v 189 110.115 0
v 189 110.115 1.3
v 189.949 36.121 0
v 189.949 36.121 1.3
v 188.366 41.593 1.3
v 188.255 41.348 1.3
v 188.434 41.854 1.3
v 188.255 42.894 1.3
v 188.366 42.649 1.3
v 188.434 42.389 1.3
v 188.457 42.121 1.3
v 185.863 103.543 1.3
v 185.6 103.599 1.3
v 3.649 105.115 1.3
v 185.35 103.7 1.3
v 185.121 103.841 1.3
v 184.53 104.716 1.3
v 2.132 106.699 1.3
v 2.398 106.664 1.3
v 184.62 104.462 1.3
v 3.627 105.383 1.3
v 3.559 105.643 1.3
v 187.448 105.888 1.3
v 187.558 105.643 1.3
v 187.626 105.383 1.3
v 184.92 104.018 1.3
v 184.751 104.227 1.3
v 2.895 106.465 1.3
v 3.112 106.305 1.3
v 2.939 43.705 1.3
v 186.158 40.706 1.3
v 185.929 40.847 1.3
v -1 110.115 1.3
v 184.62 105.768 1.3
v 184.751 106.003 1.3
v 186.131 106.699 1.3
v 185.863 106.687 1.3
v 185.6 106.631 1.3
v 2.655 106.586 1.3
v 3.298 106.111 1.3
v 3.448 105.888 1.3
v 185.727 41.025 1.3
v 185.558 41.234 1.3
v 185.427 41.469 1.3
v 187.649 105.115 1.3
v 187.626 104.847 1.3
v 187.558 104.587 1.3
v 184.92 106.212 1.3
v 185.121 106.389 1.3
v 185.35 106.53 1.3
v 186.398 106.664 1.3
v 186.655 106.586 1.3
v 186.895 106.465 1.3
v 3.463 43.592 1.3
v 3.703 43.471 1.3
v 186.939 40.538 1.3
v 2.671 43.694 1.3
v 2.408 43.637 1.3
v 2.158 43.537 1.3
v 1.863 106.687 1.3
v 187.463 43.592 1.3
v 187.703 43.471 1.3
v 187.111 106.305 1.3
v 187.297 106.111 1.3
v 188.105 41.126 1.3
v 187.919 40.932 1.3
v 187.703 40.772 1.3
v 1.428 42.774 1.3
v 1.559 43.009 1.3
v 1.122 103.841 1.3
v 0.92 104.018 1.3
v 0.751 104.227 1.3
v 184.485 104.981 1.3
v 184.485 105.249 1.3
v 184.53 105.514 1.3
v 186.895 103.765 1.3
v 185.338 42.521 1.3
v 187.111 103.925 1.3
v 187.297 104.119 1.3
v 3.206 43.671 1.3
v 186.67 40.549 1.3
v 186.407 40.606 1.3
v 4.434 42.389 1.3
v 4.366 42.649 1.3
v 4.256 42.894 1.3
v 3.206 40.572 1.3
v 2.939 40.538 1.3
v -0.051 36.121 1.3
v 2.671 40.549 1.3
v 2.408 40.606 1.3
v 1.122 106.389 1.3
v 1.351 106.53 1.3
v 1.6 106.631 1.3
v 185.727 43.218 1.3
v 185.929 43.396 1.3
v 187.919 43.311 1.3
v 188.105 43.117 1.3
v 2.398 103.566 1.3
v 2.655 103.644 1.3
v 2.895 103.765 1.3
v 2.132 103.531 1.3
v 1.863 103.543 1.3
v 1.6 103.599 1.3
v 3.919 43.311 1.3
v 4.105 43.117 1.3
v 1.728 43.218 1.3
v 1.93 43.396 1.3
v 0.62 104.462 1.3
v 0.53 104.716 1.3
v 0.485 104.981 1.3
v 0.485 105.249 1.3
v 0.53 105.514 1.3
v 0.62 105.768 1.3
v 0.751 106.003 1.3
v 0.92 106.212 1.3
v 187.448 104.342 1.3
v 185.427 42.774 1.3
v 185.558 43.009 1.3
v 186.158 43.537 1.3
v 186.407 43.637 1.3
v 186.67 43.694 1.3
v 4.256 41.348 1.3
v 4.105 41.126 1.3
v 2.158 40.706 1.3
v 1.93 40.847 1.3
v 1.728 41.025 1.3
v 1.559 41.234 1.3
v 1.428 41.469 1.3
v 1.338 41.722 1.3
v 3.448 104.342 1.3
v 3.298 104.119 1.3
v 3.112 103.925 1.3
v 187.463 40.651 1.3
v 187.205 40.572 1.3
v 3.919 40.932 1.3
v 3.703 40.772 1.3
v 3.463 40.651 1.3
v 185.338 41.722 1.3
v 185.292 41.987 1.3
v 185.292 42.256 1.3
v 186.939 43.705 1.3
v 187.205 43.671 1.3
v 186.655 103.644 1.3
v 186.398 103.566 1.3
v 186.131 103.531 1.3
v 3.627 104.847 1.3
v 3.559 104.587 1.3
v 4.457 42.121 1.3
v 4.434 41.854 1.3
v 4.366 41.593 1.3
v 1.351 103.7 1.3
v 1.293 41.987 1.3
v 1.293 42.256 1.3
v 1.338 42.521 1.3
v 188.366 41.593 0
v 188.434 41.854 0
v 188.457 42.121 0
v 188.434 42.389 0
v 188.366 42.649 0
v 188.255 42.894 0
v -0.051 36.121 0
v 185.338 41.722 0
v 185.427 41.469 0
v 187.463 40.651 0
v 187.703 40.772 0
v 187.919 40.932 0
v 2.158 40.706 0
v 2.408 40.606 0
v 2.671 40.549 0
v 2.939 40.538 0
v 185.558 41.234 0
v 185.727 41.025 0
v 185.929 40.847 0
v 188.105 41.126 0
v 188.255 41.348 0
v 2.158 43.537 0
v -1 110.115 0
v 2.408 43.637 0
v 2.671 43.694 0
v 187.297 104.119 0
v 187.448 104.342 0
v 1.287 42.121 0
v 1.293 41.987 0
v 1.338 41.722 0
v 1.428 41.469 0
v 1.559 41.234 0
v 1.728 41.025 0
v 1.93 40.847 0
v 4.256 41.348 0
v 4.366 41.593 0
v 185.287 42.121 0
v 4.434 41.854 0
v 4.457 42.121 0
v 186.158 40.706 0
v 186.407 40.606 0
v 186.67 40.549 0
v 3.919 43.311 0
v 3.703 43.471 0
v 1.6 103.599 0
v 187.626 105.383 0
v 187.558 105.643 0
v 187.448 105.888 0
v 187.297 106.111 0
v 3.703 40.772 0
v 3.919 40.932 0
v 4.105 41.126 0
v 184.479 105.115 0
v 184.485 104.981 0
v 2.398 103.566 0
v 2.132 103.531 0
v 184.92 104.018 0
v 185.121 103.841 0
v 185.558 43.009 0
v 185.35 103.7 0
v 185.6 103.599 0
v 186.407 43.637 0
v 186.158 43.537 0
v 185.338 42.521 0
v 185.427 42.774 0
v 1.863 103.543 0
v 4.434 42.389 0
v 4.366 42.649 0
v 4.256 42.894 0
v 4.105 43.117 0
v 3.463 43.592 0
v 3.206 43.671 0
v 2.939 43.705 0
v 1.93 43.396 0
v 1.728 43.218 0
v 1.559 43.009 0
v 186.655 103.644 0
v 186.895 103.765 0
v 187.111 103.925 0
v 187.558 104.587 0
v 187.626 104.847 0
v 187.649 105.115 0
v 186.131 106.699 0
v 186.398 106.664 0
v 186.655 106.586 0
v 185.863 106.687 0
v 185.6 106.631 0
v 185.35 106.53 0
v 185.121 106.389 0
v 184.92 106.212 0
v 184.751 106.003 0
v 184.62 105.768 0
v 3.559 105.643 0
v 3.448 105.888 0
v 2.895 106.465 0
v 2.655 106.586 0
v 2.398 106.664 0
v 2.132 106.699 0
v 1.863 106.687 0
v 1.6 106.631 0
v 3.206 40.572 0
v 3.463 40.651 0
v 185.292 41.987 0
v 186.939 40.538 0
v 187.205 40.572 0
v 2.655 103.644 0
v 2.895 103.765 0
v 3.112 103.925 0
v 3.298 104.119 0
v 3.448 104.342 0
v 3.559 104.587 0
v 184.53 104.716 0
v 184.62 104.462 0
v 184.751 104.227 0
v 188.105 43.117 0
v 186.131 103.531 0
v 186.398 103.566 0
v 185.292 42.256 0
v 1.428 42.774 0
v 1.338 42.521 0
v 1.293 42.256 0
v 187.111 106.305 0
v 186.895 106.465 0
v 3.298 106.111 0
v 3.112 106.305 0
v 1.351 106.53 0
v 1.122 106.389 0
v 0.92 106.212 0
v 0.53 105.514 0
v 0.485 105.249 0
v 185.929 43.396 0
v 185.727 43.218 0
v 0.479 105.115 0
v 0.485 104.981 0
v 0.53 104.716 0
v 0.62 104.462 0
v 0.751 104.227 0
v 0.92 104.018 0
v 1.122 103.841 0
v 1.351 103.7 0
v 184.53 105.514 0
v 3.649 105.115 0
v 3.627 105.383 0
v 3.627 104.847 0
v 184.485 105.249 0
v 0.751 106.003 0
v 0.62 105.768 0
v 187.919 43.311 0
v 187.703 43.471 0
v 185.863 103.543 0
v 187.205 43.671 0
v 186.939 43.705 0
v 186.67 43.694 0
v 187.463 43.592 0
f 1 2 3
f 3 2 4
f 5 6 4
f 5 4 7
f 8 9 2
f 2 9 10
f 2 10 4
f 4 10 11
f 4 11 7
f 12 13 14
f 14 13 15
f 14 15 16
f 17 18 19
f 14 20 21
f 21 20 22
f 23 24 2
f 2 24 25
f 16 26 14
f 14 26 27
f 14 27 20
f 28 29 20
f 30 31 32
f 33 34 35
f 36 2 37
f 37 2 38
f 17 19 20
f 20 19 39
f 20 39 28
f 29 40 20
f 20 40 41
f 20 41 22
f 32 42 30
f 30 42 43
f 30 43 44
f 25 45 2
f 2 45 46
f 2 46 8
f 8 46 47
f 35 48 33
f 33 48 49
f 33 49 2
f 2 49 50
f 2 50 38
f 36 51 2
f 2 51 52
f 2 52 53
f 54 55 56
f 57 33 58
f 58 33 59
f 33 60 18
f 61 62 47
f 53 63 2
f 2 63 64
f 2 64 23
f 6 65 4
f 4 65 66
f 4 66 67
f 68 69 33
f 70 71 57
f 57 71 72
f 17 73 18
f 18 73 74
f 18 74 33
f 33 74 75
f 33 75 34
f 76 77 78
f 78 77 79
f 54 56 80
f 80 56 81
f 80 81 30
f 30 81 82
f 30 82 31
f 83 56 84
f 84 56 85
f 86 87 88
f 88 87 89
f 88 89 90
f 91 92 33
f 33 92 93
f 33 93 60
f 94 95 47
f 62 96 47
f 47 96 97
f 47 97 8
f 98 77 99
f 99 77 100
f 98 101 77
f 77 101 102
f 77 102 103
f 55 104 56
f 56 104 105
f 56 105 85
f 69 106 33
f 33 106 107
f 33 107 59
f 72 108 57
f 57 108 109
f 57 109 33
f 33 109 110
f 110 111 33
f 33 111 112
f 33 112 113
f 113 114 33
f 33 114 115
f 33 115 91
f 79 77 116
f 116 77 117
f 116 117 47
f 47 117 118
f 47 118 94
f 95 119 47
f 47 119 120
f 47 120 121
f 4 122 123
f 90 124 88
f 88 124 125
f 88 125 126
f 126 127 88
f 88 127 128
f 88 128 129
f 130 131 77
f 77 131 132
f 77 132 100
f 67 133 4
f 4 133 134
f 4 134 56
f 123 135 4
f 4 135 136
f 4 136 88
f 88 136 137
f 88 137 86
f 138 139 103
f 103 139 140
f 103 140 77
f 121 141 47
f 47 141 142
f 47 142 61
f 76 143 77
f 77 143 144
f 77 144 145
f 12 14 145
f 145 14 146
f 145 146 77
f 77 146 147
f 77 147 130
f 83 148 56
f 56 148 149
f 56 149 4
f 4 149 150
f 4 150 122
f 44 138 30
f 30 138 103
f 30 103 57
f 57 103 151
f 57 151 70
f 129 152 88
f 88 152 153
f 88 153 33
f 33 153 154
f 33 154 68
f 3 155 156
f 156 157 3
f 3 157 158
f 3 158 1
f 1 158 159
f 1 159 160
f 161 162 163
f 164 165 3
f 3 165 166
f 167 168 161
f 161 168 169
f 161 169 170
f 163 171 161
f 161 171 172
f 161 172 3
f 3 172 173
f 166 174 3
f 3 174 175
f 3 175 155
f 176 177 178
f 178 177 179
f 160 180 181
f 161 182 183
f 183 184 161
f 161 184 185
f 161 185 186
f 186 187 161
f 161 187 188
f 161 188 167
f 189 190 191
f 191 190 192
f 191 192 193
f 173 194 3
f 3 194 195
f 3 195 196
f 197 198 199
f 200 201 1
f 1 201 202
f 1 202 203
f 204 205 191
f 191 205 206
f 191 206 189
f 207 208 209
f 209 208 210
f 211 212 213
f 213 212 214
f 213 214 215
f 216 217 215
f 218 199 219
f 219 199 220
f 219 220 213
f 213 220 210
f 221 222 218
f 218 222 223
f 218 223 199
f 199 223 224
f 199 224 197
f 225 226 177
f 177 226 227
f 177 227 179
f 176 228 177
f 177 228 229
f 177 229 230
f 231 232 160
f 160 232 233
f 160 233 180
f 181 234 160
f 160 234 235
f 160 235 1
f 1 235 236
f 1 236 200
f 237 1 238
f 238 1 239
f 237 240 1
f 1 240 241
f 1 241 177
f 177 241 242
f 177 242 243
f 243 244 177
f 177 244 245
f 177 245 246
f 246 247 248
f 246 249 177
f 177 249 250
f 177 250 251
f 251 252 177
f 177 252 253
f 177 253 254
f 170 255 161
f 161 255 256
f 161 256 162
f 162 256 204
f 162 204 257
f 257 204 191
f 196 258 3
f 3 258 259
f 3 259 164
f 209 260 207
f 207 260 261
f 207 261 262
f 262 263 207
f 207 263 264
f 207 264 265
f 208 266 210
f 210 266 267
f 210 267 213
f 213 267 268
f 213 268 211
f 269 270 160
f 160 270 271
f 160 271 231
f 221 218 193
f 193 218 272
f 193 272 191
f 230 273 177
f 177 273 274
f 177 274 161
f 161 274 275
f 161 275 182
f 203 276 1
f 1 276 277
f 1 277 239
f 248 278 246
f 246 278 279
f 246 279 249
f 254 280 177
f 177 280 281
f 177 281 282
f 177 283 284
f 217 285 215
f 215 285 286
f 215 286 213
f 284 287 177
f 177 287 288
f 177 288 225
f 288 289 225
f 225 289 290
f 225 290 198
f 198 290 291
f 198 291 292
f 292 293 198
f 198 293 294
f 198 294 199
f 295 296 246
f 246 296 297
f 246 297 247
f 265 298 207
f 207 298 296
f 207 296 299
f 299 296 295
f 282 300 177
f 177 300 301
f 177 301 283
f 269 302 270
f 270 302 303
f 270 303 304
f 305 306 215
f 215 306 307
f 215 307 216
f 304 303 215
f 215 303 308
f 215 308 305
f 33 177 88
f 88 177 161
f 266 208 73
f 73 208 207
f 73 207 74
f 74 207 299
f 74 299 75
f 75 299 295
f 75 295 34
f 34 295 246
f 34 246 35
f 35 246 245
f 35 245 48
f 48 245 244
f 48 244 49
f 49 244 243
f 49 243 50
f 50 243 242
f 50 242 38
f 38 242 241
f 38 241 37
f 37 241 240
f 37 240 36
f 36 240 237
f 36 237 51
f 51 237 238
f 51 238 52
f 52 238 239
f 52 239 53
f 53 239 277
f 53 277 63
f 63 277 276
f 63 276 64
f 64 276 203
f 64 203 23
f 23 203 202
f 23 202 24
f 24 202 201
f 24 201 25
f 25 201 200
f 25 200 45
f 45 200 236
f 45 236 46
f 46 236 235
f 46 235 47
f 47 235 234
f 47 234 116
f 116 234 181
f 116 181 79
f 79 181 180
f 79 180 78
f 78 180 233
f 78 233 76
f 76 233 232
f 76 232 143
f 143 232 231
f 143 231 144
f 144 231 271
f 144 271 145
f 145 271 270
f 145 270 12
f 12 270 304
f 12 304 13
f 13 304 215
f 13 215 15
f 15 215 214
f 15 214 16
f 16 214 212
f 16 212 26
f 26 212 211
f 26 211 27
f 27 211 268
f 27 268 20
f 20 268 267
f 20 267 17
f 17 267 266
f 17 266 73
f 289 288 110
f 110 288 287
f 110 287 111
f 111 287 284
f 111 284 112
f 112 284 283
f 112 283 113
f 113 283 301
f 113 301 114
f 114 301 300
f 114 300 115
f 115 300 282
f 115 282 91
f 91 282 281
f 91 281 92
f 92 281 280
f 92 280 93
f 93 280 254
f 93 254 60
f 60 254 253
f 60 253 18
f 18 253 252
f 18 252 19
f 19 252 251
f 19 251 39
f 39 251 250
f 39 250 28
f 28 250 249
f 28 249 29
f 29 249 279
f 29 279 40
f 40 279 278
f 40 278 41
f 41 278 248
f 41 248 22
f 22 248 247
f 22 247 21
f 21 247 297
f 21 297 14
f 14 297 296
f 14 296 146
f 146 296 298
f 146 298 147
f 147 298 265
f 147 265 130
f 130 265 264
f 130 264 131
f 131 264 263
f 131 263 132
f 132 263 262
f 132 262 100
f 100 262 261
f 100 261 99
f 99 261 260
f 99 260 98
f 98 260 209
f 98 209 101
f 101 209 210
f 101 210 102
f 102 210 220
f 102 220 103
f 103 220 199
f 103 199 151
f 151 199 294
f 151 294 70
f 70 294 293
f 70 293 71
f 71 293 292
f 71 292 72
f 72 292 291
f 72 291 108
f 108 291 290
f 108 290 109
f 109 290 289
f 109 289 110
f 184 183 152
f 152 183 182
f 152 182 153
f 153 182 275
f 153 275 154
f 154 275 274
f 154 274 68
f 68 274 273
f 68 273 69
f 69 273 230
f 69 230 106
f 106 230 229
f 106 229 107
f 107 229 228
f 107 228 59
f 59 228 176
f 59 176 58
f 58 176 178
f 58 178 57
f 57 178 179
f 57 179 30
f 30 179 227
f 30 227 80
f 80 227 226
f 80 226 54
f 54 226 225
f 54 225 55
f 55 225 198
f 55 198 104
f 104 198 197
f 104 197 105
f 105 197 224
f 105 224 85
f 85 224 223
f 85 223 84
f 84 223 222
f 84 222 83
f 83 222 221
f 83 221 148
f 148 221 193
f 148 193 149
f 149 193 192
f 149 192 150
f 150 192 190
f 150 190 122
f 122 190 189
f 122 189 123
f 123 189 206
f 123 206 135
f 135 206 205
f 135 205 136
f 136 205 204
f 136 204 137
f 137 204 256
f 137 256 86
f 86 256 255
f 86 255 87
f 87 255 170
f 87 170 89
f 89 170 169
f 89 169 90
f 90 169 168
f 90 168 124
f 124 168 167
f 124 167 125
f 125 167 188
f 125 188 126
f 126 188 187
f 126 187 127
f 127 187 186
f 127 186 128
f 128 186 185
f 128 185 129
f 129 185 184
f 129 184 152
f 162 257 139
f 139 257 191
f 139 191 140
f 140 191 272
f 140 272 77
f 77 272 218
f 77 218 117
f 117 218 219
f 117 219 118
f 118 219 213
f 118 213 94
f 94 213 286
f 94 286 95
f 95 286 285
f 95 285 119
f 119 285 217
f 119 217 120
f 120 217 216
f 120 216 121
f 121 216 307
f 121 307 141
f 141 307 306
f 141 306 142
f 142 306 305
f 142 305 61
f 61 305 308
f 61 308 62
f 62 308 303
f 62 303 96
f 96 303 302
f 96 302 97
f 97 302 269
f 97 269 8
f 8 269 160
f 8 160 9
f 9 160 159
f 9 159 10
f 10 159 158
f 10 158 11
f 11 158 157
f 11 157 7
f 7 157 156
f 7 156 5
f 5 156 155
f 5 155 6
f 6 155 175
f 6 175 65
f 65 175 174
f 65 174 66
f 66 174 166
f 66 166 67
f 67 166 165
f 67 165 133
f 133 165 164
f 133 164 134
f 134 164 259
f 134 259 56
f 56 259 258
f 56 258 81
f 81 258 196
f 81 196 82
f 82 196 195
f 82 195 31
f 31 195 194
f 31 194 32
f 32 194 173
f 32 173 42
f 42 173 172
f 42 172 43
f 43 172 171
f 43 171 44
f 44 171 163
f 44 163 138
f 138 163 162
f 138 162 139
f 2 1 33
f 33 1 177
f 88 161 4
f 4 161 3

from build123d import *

# Parameters (mm, degrees)
BOSS_EXTRUDE1_DEPTH     = 1.3
SKETCH3_R               = 1.585
CUT_EXTRUDE4_DEPTH      = 5
SKETCH8_W               = 195
SKETCH8_H               = 1.3
CUT_EXTRUDE5_DEPTH      = 10
CUT_EXTRUDE6_DEPTH      = 3
CUT_EXTRUDE6_DEPTH_BACK = 1
SKETCH9_W               = 190.999999892
SKETCH9_H               = 1.3


with BuildPart() as part:
    # Sketch1 → Boss-Extrude1 (new body)
    with BuildSketch(Plane.XY):
        Polygon((-3.499999892, 110.115018053), (-0.999999892, 110.115018053), (0, 32.121428571), (190, 32.121428571), (189, 110.121428571), (191.500000108, 110.115018053), (191.500000108, 115.115018053), (-3.499999892, 115.115018053), align=None)
    extrude(amount=BOSS_EXTRUDE1_DEPTH)

    # Sketch3 → Cut-Extrude4 (cut)
    with BuildSketch(Plane.XY.offset(1.3)):
        with Locations((186.063938212, 105.115018053)):
            Circle(SKETCH3_R)
        with Locations((2.064354513, 105.115018053)):
            Circle(SKETCH3_R)
        with Locations((2.872030927, 42.121428571)):
            Circle(SKETCH3_R)
        with Locations((186.871548334, 42.121428571)):
            Circle(SKETCH3_R)
    extrude(amount=-CUT_EXTRUDE4_DEPTH, mode=Mode.SUBTRACT)

    # Sketch8 → Cut-Extrude5 (cut)
    with BuildSketch(Plane(origin=(0, 110.115018053, 0), x_dir=(1, 0, 0), z_dir=(0, 1, 0))):
        with Locations((94.000000108, -0.65)):
            Rectangle(SKETCH8_W, SKETCH8_H)
    extrude(amount=CUT_EXTRUDE5_DEPTH, mode=Mode.SUBTRACT)

    # Sketch9 → Cut-Extrude6 (cut, two sides: drawn at the far end of the back side and taken through both)
    with BuildSketch(Plane(origin=(0, 35.121428571, 0), x_dir=(-1, 0, 0), z_dir=(0, -1, 0)).offset(-CUT_EXTRUDE6_DEPTH_BACK)):
        with Locations((-94.500000054, -0.65)):
            Rectangle(SKETCH9_W, SKETCH9_H)
    extrude(amount=CUT_EXTRUDE6_DEPTH + CUT_EXTRUDE6_DEPTH_BACK, mode=Mode.SUBTRACT)


solid = part.part
